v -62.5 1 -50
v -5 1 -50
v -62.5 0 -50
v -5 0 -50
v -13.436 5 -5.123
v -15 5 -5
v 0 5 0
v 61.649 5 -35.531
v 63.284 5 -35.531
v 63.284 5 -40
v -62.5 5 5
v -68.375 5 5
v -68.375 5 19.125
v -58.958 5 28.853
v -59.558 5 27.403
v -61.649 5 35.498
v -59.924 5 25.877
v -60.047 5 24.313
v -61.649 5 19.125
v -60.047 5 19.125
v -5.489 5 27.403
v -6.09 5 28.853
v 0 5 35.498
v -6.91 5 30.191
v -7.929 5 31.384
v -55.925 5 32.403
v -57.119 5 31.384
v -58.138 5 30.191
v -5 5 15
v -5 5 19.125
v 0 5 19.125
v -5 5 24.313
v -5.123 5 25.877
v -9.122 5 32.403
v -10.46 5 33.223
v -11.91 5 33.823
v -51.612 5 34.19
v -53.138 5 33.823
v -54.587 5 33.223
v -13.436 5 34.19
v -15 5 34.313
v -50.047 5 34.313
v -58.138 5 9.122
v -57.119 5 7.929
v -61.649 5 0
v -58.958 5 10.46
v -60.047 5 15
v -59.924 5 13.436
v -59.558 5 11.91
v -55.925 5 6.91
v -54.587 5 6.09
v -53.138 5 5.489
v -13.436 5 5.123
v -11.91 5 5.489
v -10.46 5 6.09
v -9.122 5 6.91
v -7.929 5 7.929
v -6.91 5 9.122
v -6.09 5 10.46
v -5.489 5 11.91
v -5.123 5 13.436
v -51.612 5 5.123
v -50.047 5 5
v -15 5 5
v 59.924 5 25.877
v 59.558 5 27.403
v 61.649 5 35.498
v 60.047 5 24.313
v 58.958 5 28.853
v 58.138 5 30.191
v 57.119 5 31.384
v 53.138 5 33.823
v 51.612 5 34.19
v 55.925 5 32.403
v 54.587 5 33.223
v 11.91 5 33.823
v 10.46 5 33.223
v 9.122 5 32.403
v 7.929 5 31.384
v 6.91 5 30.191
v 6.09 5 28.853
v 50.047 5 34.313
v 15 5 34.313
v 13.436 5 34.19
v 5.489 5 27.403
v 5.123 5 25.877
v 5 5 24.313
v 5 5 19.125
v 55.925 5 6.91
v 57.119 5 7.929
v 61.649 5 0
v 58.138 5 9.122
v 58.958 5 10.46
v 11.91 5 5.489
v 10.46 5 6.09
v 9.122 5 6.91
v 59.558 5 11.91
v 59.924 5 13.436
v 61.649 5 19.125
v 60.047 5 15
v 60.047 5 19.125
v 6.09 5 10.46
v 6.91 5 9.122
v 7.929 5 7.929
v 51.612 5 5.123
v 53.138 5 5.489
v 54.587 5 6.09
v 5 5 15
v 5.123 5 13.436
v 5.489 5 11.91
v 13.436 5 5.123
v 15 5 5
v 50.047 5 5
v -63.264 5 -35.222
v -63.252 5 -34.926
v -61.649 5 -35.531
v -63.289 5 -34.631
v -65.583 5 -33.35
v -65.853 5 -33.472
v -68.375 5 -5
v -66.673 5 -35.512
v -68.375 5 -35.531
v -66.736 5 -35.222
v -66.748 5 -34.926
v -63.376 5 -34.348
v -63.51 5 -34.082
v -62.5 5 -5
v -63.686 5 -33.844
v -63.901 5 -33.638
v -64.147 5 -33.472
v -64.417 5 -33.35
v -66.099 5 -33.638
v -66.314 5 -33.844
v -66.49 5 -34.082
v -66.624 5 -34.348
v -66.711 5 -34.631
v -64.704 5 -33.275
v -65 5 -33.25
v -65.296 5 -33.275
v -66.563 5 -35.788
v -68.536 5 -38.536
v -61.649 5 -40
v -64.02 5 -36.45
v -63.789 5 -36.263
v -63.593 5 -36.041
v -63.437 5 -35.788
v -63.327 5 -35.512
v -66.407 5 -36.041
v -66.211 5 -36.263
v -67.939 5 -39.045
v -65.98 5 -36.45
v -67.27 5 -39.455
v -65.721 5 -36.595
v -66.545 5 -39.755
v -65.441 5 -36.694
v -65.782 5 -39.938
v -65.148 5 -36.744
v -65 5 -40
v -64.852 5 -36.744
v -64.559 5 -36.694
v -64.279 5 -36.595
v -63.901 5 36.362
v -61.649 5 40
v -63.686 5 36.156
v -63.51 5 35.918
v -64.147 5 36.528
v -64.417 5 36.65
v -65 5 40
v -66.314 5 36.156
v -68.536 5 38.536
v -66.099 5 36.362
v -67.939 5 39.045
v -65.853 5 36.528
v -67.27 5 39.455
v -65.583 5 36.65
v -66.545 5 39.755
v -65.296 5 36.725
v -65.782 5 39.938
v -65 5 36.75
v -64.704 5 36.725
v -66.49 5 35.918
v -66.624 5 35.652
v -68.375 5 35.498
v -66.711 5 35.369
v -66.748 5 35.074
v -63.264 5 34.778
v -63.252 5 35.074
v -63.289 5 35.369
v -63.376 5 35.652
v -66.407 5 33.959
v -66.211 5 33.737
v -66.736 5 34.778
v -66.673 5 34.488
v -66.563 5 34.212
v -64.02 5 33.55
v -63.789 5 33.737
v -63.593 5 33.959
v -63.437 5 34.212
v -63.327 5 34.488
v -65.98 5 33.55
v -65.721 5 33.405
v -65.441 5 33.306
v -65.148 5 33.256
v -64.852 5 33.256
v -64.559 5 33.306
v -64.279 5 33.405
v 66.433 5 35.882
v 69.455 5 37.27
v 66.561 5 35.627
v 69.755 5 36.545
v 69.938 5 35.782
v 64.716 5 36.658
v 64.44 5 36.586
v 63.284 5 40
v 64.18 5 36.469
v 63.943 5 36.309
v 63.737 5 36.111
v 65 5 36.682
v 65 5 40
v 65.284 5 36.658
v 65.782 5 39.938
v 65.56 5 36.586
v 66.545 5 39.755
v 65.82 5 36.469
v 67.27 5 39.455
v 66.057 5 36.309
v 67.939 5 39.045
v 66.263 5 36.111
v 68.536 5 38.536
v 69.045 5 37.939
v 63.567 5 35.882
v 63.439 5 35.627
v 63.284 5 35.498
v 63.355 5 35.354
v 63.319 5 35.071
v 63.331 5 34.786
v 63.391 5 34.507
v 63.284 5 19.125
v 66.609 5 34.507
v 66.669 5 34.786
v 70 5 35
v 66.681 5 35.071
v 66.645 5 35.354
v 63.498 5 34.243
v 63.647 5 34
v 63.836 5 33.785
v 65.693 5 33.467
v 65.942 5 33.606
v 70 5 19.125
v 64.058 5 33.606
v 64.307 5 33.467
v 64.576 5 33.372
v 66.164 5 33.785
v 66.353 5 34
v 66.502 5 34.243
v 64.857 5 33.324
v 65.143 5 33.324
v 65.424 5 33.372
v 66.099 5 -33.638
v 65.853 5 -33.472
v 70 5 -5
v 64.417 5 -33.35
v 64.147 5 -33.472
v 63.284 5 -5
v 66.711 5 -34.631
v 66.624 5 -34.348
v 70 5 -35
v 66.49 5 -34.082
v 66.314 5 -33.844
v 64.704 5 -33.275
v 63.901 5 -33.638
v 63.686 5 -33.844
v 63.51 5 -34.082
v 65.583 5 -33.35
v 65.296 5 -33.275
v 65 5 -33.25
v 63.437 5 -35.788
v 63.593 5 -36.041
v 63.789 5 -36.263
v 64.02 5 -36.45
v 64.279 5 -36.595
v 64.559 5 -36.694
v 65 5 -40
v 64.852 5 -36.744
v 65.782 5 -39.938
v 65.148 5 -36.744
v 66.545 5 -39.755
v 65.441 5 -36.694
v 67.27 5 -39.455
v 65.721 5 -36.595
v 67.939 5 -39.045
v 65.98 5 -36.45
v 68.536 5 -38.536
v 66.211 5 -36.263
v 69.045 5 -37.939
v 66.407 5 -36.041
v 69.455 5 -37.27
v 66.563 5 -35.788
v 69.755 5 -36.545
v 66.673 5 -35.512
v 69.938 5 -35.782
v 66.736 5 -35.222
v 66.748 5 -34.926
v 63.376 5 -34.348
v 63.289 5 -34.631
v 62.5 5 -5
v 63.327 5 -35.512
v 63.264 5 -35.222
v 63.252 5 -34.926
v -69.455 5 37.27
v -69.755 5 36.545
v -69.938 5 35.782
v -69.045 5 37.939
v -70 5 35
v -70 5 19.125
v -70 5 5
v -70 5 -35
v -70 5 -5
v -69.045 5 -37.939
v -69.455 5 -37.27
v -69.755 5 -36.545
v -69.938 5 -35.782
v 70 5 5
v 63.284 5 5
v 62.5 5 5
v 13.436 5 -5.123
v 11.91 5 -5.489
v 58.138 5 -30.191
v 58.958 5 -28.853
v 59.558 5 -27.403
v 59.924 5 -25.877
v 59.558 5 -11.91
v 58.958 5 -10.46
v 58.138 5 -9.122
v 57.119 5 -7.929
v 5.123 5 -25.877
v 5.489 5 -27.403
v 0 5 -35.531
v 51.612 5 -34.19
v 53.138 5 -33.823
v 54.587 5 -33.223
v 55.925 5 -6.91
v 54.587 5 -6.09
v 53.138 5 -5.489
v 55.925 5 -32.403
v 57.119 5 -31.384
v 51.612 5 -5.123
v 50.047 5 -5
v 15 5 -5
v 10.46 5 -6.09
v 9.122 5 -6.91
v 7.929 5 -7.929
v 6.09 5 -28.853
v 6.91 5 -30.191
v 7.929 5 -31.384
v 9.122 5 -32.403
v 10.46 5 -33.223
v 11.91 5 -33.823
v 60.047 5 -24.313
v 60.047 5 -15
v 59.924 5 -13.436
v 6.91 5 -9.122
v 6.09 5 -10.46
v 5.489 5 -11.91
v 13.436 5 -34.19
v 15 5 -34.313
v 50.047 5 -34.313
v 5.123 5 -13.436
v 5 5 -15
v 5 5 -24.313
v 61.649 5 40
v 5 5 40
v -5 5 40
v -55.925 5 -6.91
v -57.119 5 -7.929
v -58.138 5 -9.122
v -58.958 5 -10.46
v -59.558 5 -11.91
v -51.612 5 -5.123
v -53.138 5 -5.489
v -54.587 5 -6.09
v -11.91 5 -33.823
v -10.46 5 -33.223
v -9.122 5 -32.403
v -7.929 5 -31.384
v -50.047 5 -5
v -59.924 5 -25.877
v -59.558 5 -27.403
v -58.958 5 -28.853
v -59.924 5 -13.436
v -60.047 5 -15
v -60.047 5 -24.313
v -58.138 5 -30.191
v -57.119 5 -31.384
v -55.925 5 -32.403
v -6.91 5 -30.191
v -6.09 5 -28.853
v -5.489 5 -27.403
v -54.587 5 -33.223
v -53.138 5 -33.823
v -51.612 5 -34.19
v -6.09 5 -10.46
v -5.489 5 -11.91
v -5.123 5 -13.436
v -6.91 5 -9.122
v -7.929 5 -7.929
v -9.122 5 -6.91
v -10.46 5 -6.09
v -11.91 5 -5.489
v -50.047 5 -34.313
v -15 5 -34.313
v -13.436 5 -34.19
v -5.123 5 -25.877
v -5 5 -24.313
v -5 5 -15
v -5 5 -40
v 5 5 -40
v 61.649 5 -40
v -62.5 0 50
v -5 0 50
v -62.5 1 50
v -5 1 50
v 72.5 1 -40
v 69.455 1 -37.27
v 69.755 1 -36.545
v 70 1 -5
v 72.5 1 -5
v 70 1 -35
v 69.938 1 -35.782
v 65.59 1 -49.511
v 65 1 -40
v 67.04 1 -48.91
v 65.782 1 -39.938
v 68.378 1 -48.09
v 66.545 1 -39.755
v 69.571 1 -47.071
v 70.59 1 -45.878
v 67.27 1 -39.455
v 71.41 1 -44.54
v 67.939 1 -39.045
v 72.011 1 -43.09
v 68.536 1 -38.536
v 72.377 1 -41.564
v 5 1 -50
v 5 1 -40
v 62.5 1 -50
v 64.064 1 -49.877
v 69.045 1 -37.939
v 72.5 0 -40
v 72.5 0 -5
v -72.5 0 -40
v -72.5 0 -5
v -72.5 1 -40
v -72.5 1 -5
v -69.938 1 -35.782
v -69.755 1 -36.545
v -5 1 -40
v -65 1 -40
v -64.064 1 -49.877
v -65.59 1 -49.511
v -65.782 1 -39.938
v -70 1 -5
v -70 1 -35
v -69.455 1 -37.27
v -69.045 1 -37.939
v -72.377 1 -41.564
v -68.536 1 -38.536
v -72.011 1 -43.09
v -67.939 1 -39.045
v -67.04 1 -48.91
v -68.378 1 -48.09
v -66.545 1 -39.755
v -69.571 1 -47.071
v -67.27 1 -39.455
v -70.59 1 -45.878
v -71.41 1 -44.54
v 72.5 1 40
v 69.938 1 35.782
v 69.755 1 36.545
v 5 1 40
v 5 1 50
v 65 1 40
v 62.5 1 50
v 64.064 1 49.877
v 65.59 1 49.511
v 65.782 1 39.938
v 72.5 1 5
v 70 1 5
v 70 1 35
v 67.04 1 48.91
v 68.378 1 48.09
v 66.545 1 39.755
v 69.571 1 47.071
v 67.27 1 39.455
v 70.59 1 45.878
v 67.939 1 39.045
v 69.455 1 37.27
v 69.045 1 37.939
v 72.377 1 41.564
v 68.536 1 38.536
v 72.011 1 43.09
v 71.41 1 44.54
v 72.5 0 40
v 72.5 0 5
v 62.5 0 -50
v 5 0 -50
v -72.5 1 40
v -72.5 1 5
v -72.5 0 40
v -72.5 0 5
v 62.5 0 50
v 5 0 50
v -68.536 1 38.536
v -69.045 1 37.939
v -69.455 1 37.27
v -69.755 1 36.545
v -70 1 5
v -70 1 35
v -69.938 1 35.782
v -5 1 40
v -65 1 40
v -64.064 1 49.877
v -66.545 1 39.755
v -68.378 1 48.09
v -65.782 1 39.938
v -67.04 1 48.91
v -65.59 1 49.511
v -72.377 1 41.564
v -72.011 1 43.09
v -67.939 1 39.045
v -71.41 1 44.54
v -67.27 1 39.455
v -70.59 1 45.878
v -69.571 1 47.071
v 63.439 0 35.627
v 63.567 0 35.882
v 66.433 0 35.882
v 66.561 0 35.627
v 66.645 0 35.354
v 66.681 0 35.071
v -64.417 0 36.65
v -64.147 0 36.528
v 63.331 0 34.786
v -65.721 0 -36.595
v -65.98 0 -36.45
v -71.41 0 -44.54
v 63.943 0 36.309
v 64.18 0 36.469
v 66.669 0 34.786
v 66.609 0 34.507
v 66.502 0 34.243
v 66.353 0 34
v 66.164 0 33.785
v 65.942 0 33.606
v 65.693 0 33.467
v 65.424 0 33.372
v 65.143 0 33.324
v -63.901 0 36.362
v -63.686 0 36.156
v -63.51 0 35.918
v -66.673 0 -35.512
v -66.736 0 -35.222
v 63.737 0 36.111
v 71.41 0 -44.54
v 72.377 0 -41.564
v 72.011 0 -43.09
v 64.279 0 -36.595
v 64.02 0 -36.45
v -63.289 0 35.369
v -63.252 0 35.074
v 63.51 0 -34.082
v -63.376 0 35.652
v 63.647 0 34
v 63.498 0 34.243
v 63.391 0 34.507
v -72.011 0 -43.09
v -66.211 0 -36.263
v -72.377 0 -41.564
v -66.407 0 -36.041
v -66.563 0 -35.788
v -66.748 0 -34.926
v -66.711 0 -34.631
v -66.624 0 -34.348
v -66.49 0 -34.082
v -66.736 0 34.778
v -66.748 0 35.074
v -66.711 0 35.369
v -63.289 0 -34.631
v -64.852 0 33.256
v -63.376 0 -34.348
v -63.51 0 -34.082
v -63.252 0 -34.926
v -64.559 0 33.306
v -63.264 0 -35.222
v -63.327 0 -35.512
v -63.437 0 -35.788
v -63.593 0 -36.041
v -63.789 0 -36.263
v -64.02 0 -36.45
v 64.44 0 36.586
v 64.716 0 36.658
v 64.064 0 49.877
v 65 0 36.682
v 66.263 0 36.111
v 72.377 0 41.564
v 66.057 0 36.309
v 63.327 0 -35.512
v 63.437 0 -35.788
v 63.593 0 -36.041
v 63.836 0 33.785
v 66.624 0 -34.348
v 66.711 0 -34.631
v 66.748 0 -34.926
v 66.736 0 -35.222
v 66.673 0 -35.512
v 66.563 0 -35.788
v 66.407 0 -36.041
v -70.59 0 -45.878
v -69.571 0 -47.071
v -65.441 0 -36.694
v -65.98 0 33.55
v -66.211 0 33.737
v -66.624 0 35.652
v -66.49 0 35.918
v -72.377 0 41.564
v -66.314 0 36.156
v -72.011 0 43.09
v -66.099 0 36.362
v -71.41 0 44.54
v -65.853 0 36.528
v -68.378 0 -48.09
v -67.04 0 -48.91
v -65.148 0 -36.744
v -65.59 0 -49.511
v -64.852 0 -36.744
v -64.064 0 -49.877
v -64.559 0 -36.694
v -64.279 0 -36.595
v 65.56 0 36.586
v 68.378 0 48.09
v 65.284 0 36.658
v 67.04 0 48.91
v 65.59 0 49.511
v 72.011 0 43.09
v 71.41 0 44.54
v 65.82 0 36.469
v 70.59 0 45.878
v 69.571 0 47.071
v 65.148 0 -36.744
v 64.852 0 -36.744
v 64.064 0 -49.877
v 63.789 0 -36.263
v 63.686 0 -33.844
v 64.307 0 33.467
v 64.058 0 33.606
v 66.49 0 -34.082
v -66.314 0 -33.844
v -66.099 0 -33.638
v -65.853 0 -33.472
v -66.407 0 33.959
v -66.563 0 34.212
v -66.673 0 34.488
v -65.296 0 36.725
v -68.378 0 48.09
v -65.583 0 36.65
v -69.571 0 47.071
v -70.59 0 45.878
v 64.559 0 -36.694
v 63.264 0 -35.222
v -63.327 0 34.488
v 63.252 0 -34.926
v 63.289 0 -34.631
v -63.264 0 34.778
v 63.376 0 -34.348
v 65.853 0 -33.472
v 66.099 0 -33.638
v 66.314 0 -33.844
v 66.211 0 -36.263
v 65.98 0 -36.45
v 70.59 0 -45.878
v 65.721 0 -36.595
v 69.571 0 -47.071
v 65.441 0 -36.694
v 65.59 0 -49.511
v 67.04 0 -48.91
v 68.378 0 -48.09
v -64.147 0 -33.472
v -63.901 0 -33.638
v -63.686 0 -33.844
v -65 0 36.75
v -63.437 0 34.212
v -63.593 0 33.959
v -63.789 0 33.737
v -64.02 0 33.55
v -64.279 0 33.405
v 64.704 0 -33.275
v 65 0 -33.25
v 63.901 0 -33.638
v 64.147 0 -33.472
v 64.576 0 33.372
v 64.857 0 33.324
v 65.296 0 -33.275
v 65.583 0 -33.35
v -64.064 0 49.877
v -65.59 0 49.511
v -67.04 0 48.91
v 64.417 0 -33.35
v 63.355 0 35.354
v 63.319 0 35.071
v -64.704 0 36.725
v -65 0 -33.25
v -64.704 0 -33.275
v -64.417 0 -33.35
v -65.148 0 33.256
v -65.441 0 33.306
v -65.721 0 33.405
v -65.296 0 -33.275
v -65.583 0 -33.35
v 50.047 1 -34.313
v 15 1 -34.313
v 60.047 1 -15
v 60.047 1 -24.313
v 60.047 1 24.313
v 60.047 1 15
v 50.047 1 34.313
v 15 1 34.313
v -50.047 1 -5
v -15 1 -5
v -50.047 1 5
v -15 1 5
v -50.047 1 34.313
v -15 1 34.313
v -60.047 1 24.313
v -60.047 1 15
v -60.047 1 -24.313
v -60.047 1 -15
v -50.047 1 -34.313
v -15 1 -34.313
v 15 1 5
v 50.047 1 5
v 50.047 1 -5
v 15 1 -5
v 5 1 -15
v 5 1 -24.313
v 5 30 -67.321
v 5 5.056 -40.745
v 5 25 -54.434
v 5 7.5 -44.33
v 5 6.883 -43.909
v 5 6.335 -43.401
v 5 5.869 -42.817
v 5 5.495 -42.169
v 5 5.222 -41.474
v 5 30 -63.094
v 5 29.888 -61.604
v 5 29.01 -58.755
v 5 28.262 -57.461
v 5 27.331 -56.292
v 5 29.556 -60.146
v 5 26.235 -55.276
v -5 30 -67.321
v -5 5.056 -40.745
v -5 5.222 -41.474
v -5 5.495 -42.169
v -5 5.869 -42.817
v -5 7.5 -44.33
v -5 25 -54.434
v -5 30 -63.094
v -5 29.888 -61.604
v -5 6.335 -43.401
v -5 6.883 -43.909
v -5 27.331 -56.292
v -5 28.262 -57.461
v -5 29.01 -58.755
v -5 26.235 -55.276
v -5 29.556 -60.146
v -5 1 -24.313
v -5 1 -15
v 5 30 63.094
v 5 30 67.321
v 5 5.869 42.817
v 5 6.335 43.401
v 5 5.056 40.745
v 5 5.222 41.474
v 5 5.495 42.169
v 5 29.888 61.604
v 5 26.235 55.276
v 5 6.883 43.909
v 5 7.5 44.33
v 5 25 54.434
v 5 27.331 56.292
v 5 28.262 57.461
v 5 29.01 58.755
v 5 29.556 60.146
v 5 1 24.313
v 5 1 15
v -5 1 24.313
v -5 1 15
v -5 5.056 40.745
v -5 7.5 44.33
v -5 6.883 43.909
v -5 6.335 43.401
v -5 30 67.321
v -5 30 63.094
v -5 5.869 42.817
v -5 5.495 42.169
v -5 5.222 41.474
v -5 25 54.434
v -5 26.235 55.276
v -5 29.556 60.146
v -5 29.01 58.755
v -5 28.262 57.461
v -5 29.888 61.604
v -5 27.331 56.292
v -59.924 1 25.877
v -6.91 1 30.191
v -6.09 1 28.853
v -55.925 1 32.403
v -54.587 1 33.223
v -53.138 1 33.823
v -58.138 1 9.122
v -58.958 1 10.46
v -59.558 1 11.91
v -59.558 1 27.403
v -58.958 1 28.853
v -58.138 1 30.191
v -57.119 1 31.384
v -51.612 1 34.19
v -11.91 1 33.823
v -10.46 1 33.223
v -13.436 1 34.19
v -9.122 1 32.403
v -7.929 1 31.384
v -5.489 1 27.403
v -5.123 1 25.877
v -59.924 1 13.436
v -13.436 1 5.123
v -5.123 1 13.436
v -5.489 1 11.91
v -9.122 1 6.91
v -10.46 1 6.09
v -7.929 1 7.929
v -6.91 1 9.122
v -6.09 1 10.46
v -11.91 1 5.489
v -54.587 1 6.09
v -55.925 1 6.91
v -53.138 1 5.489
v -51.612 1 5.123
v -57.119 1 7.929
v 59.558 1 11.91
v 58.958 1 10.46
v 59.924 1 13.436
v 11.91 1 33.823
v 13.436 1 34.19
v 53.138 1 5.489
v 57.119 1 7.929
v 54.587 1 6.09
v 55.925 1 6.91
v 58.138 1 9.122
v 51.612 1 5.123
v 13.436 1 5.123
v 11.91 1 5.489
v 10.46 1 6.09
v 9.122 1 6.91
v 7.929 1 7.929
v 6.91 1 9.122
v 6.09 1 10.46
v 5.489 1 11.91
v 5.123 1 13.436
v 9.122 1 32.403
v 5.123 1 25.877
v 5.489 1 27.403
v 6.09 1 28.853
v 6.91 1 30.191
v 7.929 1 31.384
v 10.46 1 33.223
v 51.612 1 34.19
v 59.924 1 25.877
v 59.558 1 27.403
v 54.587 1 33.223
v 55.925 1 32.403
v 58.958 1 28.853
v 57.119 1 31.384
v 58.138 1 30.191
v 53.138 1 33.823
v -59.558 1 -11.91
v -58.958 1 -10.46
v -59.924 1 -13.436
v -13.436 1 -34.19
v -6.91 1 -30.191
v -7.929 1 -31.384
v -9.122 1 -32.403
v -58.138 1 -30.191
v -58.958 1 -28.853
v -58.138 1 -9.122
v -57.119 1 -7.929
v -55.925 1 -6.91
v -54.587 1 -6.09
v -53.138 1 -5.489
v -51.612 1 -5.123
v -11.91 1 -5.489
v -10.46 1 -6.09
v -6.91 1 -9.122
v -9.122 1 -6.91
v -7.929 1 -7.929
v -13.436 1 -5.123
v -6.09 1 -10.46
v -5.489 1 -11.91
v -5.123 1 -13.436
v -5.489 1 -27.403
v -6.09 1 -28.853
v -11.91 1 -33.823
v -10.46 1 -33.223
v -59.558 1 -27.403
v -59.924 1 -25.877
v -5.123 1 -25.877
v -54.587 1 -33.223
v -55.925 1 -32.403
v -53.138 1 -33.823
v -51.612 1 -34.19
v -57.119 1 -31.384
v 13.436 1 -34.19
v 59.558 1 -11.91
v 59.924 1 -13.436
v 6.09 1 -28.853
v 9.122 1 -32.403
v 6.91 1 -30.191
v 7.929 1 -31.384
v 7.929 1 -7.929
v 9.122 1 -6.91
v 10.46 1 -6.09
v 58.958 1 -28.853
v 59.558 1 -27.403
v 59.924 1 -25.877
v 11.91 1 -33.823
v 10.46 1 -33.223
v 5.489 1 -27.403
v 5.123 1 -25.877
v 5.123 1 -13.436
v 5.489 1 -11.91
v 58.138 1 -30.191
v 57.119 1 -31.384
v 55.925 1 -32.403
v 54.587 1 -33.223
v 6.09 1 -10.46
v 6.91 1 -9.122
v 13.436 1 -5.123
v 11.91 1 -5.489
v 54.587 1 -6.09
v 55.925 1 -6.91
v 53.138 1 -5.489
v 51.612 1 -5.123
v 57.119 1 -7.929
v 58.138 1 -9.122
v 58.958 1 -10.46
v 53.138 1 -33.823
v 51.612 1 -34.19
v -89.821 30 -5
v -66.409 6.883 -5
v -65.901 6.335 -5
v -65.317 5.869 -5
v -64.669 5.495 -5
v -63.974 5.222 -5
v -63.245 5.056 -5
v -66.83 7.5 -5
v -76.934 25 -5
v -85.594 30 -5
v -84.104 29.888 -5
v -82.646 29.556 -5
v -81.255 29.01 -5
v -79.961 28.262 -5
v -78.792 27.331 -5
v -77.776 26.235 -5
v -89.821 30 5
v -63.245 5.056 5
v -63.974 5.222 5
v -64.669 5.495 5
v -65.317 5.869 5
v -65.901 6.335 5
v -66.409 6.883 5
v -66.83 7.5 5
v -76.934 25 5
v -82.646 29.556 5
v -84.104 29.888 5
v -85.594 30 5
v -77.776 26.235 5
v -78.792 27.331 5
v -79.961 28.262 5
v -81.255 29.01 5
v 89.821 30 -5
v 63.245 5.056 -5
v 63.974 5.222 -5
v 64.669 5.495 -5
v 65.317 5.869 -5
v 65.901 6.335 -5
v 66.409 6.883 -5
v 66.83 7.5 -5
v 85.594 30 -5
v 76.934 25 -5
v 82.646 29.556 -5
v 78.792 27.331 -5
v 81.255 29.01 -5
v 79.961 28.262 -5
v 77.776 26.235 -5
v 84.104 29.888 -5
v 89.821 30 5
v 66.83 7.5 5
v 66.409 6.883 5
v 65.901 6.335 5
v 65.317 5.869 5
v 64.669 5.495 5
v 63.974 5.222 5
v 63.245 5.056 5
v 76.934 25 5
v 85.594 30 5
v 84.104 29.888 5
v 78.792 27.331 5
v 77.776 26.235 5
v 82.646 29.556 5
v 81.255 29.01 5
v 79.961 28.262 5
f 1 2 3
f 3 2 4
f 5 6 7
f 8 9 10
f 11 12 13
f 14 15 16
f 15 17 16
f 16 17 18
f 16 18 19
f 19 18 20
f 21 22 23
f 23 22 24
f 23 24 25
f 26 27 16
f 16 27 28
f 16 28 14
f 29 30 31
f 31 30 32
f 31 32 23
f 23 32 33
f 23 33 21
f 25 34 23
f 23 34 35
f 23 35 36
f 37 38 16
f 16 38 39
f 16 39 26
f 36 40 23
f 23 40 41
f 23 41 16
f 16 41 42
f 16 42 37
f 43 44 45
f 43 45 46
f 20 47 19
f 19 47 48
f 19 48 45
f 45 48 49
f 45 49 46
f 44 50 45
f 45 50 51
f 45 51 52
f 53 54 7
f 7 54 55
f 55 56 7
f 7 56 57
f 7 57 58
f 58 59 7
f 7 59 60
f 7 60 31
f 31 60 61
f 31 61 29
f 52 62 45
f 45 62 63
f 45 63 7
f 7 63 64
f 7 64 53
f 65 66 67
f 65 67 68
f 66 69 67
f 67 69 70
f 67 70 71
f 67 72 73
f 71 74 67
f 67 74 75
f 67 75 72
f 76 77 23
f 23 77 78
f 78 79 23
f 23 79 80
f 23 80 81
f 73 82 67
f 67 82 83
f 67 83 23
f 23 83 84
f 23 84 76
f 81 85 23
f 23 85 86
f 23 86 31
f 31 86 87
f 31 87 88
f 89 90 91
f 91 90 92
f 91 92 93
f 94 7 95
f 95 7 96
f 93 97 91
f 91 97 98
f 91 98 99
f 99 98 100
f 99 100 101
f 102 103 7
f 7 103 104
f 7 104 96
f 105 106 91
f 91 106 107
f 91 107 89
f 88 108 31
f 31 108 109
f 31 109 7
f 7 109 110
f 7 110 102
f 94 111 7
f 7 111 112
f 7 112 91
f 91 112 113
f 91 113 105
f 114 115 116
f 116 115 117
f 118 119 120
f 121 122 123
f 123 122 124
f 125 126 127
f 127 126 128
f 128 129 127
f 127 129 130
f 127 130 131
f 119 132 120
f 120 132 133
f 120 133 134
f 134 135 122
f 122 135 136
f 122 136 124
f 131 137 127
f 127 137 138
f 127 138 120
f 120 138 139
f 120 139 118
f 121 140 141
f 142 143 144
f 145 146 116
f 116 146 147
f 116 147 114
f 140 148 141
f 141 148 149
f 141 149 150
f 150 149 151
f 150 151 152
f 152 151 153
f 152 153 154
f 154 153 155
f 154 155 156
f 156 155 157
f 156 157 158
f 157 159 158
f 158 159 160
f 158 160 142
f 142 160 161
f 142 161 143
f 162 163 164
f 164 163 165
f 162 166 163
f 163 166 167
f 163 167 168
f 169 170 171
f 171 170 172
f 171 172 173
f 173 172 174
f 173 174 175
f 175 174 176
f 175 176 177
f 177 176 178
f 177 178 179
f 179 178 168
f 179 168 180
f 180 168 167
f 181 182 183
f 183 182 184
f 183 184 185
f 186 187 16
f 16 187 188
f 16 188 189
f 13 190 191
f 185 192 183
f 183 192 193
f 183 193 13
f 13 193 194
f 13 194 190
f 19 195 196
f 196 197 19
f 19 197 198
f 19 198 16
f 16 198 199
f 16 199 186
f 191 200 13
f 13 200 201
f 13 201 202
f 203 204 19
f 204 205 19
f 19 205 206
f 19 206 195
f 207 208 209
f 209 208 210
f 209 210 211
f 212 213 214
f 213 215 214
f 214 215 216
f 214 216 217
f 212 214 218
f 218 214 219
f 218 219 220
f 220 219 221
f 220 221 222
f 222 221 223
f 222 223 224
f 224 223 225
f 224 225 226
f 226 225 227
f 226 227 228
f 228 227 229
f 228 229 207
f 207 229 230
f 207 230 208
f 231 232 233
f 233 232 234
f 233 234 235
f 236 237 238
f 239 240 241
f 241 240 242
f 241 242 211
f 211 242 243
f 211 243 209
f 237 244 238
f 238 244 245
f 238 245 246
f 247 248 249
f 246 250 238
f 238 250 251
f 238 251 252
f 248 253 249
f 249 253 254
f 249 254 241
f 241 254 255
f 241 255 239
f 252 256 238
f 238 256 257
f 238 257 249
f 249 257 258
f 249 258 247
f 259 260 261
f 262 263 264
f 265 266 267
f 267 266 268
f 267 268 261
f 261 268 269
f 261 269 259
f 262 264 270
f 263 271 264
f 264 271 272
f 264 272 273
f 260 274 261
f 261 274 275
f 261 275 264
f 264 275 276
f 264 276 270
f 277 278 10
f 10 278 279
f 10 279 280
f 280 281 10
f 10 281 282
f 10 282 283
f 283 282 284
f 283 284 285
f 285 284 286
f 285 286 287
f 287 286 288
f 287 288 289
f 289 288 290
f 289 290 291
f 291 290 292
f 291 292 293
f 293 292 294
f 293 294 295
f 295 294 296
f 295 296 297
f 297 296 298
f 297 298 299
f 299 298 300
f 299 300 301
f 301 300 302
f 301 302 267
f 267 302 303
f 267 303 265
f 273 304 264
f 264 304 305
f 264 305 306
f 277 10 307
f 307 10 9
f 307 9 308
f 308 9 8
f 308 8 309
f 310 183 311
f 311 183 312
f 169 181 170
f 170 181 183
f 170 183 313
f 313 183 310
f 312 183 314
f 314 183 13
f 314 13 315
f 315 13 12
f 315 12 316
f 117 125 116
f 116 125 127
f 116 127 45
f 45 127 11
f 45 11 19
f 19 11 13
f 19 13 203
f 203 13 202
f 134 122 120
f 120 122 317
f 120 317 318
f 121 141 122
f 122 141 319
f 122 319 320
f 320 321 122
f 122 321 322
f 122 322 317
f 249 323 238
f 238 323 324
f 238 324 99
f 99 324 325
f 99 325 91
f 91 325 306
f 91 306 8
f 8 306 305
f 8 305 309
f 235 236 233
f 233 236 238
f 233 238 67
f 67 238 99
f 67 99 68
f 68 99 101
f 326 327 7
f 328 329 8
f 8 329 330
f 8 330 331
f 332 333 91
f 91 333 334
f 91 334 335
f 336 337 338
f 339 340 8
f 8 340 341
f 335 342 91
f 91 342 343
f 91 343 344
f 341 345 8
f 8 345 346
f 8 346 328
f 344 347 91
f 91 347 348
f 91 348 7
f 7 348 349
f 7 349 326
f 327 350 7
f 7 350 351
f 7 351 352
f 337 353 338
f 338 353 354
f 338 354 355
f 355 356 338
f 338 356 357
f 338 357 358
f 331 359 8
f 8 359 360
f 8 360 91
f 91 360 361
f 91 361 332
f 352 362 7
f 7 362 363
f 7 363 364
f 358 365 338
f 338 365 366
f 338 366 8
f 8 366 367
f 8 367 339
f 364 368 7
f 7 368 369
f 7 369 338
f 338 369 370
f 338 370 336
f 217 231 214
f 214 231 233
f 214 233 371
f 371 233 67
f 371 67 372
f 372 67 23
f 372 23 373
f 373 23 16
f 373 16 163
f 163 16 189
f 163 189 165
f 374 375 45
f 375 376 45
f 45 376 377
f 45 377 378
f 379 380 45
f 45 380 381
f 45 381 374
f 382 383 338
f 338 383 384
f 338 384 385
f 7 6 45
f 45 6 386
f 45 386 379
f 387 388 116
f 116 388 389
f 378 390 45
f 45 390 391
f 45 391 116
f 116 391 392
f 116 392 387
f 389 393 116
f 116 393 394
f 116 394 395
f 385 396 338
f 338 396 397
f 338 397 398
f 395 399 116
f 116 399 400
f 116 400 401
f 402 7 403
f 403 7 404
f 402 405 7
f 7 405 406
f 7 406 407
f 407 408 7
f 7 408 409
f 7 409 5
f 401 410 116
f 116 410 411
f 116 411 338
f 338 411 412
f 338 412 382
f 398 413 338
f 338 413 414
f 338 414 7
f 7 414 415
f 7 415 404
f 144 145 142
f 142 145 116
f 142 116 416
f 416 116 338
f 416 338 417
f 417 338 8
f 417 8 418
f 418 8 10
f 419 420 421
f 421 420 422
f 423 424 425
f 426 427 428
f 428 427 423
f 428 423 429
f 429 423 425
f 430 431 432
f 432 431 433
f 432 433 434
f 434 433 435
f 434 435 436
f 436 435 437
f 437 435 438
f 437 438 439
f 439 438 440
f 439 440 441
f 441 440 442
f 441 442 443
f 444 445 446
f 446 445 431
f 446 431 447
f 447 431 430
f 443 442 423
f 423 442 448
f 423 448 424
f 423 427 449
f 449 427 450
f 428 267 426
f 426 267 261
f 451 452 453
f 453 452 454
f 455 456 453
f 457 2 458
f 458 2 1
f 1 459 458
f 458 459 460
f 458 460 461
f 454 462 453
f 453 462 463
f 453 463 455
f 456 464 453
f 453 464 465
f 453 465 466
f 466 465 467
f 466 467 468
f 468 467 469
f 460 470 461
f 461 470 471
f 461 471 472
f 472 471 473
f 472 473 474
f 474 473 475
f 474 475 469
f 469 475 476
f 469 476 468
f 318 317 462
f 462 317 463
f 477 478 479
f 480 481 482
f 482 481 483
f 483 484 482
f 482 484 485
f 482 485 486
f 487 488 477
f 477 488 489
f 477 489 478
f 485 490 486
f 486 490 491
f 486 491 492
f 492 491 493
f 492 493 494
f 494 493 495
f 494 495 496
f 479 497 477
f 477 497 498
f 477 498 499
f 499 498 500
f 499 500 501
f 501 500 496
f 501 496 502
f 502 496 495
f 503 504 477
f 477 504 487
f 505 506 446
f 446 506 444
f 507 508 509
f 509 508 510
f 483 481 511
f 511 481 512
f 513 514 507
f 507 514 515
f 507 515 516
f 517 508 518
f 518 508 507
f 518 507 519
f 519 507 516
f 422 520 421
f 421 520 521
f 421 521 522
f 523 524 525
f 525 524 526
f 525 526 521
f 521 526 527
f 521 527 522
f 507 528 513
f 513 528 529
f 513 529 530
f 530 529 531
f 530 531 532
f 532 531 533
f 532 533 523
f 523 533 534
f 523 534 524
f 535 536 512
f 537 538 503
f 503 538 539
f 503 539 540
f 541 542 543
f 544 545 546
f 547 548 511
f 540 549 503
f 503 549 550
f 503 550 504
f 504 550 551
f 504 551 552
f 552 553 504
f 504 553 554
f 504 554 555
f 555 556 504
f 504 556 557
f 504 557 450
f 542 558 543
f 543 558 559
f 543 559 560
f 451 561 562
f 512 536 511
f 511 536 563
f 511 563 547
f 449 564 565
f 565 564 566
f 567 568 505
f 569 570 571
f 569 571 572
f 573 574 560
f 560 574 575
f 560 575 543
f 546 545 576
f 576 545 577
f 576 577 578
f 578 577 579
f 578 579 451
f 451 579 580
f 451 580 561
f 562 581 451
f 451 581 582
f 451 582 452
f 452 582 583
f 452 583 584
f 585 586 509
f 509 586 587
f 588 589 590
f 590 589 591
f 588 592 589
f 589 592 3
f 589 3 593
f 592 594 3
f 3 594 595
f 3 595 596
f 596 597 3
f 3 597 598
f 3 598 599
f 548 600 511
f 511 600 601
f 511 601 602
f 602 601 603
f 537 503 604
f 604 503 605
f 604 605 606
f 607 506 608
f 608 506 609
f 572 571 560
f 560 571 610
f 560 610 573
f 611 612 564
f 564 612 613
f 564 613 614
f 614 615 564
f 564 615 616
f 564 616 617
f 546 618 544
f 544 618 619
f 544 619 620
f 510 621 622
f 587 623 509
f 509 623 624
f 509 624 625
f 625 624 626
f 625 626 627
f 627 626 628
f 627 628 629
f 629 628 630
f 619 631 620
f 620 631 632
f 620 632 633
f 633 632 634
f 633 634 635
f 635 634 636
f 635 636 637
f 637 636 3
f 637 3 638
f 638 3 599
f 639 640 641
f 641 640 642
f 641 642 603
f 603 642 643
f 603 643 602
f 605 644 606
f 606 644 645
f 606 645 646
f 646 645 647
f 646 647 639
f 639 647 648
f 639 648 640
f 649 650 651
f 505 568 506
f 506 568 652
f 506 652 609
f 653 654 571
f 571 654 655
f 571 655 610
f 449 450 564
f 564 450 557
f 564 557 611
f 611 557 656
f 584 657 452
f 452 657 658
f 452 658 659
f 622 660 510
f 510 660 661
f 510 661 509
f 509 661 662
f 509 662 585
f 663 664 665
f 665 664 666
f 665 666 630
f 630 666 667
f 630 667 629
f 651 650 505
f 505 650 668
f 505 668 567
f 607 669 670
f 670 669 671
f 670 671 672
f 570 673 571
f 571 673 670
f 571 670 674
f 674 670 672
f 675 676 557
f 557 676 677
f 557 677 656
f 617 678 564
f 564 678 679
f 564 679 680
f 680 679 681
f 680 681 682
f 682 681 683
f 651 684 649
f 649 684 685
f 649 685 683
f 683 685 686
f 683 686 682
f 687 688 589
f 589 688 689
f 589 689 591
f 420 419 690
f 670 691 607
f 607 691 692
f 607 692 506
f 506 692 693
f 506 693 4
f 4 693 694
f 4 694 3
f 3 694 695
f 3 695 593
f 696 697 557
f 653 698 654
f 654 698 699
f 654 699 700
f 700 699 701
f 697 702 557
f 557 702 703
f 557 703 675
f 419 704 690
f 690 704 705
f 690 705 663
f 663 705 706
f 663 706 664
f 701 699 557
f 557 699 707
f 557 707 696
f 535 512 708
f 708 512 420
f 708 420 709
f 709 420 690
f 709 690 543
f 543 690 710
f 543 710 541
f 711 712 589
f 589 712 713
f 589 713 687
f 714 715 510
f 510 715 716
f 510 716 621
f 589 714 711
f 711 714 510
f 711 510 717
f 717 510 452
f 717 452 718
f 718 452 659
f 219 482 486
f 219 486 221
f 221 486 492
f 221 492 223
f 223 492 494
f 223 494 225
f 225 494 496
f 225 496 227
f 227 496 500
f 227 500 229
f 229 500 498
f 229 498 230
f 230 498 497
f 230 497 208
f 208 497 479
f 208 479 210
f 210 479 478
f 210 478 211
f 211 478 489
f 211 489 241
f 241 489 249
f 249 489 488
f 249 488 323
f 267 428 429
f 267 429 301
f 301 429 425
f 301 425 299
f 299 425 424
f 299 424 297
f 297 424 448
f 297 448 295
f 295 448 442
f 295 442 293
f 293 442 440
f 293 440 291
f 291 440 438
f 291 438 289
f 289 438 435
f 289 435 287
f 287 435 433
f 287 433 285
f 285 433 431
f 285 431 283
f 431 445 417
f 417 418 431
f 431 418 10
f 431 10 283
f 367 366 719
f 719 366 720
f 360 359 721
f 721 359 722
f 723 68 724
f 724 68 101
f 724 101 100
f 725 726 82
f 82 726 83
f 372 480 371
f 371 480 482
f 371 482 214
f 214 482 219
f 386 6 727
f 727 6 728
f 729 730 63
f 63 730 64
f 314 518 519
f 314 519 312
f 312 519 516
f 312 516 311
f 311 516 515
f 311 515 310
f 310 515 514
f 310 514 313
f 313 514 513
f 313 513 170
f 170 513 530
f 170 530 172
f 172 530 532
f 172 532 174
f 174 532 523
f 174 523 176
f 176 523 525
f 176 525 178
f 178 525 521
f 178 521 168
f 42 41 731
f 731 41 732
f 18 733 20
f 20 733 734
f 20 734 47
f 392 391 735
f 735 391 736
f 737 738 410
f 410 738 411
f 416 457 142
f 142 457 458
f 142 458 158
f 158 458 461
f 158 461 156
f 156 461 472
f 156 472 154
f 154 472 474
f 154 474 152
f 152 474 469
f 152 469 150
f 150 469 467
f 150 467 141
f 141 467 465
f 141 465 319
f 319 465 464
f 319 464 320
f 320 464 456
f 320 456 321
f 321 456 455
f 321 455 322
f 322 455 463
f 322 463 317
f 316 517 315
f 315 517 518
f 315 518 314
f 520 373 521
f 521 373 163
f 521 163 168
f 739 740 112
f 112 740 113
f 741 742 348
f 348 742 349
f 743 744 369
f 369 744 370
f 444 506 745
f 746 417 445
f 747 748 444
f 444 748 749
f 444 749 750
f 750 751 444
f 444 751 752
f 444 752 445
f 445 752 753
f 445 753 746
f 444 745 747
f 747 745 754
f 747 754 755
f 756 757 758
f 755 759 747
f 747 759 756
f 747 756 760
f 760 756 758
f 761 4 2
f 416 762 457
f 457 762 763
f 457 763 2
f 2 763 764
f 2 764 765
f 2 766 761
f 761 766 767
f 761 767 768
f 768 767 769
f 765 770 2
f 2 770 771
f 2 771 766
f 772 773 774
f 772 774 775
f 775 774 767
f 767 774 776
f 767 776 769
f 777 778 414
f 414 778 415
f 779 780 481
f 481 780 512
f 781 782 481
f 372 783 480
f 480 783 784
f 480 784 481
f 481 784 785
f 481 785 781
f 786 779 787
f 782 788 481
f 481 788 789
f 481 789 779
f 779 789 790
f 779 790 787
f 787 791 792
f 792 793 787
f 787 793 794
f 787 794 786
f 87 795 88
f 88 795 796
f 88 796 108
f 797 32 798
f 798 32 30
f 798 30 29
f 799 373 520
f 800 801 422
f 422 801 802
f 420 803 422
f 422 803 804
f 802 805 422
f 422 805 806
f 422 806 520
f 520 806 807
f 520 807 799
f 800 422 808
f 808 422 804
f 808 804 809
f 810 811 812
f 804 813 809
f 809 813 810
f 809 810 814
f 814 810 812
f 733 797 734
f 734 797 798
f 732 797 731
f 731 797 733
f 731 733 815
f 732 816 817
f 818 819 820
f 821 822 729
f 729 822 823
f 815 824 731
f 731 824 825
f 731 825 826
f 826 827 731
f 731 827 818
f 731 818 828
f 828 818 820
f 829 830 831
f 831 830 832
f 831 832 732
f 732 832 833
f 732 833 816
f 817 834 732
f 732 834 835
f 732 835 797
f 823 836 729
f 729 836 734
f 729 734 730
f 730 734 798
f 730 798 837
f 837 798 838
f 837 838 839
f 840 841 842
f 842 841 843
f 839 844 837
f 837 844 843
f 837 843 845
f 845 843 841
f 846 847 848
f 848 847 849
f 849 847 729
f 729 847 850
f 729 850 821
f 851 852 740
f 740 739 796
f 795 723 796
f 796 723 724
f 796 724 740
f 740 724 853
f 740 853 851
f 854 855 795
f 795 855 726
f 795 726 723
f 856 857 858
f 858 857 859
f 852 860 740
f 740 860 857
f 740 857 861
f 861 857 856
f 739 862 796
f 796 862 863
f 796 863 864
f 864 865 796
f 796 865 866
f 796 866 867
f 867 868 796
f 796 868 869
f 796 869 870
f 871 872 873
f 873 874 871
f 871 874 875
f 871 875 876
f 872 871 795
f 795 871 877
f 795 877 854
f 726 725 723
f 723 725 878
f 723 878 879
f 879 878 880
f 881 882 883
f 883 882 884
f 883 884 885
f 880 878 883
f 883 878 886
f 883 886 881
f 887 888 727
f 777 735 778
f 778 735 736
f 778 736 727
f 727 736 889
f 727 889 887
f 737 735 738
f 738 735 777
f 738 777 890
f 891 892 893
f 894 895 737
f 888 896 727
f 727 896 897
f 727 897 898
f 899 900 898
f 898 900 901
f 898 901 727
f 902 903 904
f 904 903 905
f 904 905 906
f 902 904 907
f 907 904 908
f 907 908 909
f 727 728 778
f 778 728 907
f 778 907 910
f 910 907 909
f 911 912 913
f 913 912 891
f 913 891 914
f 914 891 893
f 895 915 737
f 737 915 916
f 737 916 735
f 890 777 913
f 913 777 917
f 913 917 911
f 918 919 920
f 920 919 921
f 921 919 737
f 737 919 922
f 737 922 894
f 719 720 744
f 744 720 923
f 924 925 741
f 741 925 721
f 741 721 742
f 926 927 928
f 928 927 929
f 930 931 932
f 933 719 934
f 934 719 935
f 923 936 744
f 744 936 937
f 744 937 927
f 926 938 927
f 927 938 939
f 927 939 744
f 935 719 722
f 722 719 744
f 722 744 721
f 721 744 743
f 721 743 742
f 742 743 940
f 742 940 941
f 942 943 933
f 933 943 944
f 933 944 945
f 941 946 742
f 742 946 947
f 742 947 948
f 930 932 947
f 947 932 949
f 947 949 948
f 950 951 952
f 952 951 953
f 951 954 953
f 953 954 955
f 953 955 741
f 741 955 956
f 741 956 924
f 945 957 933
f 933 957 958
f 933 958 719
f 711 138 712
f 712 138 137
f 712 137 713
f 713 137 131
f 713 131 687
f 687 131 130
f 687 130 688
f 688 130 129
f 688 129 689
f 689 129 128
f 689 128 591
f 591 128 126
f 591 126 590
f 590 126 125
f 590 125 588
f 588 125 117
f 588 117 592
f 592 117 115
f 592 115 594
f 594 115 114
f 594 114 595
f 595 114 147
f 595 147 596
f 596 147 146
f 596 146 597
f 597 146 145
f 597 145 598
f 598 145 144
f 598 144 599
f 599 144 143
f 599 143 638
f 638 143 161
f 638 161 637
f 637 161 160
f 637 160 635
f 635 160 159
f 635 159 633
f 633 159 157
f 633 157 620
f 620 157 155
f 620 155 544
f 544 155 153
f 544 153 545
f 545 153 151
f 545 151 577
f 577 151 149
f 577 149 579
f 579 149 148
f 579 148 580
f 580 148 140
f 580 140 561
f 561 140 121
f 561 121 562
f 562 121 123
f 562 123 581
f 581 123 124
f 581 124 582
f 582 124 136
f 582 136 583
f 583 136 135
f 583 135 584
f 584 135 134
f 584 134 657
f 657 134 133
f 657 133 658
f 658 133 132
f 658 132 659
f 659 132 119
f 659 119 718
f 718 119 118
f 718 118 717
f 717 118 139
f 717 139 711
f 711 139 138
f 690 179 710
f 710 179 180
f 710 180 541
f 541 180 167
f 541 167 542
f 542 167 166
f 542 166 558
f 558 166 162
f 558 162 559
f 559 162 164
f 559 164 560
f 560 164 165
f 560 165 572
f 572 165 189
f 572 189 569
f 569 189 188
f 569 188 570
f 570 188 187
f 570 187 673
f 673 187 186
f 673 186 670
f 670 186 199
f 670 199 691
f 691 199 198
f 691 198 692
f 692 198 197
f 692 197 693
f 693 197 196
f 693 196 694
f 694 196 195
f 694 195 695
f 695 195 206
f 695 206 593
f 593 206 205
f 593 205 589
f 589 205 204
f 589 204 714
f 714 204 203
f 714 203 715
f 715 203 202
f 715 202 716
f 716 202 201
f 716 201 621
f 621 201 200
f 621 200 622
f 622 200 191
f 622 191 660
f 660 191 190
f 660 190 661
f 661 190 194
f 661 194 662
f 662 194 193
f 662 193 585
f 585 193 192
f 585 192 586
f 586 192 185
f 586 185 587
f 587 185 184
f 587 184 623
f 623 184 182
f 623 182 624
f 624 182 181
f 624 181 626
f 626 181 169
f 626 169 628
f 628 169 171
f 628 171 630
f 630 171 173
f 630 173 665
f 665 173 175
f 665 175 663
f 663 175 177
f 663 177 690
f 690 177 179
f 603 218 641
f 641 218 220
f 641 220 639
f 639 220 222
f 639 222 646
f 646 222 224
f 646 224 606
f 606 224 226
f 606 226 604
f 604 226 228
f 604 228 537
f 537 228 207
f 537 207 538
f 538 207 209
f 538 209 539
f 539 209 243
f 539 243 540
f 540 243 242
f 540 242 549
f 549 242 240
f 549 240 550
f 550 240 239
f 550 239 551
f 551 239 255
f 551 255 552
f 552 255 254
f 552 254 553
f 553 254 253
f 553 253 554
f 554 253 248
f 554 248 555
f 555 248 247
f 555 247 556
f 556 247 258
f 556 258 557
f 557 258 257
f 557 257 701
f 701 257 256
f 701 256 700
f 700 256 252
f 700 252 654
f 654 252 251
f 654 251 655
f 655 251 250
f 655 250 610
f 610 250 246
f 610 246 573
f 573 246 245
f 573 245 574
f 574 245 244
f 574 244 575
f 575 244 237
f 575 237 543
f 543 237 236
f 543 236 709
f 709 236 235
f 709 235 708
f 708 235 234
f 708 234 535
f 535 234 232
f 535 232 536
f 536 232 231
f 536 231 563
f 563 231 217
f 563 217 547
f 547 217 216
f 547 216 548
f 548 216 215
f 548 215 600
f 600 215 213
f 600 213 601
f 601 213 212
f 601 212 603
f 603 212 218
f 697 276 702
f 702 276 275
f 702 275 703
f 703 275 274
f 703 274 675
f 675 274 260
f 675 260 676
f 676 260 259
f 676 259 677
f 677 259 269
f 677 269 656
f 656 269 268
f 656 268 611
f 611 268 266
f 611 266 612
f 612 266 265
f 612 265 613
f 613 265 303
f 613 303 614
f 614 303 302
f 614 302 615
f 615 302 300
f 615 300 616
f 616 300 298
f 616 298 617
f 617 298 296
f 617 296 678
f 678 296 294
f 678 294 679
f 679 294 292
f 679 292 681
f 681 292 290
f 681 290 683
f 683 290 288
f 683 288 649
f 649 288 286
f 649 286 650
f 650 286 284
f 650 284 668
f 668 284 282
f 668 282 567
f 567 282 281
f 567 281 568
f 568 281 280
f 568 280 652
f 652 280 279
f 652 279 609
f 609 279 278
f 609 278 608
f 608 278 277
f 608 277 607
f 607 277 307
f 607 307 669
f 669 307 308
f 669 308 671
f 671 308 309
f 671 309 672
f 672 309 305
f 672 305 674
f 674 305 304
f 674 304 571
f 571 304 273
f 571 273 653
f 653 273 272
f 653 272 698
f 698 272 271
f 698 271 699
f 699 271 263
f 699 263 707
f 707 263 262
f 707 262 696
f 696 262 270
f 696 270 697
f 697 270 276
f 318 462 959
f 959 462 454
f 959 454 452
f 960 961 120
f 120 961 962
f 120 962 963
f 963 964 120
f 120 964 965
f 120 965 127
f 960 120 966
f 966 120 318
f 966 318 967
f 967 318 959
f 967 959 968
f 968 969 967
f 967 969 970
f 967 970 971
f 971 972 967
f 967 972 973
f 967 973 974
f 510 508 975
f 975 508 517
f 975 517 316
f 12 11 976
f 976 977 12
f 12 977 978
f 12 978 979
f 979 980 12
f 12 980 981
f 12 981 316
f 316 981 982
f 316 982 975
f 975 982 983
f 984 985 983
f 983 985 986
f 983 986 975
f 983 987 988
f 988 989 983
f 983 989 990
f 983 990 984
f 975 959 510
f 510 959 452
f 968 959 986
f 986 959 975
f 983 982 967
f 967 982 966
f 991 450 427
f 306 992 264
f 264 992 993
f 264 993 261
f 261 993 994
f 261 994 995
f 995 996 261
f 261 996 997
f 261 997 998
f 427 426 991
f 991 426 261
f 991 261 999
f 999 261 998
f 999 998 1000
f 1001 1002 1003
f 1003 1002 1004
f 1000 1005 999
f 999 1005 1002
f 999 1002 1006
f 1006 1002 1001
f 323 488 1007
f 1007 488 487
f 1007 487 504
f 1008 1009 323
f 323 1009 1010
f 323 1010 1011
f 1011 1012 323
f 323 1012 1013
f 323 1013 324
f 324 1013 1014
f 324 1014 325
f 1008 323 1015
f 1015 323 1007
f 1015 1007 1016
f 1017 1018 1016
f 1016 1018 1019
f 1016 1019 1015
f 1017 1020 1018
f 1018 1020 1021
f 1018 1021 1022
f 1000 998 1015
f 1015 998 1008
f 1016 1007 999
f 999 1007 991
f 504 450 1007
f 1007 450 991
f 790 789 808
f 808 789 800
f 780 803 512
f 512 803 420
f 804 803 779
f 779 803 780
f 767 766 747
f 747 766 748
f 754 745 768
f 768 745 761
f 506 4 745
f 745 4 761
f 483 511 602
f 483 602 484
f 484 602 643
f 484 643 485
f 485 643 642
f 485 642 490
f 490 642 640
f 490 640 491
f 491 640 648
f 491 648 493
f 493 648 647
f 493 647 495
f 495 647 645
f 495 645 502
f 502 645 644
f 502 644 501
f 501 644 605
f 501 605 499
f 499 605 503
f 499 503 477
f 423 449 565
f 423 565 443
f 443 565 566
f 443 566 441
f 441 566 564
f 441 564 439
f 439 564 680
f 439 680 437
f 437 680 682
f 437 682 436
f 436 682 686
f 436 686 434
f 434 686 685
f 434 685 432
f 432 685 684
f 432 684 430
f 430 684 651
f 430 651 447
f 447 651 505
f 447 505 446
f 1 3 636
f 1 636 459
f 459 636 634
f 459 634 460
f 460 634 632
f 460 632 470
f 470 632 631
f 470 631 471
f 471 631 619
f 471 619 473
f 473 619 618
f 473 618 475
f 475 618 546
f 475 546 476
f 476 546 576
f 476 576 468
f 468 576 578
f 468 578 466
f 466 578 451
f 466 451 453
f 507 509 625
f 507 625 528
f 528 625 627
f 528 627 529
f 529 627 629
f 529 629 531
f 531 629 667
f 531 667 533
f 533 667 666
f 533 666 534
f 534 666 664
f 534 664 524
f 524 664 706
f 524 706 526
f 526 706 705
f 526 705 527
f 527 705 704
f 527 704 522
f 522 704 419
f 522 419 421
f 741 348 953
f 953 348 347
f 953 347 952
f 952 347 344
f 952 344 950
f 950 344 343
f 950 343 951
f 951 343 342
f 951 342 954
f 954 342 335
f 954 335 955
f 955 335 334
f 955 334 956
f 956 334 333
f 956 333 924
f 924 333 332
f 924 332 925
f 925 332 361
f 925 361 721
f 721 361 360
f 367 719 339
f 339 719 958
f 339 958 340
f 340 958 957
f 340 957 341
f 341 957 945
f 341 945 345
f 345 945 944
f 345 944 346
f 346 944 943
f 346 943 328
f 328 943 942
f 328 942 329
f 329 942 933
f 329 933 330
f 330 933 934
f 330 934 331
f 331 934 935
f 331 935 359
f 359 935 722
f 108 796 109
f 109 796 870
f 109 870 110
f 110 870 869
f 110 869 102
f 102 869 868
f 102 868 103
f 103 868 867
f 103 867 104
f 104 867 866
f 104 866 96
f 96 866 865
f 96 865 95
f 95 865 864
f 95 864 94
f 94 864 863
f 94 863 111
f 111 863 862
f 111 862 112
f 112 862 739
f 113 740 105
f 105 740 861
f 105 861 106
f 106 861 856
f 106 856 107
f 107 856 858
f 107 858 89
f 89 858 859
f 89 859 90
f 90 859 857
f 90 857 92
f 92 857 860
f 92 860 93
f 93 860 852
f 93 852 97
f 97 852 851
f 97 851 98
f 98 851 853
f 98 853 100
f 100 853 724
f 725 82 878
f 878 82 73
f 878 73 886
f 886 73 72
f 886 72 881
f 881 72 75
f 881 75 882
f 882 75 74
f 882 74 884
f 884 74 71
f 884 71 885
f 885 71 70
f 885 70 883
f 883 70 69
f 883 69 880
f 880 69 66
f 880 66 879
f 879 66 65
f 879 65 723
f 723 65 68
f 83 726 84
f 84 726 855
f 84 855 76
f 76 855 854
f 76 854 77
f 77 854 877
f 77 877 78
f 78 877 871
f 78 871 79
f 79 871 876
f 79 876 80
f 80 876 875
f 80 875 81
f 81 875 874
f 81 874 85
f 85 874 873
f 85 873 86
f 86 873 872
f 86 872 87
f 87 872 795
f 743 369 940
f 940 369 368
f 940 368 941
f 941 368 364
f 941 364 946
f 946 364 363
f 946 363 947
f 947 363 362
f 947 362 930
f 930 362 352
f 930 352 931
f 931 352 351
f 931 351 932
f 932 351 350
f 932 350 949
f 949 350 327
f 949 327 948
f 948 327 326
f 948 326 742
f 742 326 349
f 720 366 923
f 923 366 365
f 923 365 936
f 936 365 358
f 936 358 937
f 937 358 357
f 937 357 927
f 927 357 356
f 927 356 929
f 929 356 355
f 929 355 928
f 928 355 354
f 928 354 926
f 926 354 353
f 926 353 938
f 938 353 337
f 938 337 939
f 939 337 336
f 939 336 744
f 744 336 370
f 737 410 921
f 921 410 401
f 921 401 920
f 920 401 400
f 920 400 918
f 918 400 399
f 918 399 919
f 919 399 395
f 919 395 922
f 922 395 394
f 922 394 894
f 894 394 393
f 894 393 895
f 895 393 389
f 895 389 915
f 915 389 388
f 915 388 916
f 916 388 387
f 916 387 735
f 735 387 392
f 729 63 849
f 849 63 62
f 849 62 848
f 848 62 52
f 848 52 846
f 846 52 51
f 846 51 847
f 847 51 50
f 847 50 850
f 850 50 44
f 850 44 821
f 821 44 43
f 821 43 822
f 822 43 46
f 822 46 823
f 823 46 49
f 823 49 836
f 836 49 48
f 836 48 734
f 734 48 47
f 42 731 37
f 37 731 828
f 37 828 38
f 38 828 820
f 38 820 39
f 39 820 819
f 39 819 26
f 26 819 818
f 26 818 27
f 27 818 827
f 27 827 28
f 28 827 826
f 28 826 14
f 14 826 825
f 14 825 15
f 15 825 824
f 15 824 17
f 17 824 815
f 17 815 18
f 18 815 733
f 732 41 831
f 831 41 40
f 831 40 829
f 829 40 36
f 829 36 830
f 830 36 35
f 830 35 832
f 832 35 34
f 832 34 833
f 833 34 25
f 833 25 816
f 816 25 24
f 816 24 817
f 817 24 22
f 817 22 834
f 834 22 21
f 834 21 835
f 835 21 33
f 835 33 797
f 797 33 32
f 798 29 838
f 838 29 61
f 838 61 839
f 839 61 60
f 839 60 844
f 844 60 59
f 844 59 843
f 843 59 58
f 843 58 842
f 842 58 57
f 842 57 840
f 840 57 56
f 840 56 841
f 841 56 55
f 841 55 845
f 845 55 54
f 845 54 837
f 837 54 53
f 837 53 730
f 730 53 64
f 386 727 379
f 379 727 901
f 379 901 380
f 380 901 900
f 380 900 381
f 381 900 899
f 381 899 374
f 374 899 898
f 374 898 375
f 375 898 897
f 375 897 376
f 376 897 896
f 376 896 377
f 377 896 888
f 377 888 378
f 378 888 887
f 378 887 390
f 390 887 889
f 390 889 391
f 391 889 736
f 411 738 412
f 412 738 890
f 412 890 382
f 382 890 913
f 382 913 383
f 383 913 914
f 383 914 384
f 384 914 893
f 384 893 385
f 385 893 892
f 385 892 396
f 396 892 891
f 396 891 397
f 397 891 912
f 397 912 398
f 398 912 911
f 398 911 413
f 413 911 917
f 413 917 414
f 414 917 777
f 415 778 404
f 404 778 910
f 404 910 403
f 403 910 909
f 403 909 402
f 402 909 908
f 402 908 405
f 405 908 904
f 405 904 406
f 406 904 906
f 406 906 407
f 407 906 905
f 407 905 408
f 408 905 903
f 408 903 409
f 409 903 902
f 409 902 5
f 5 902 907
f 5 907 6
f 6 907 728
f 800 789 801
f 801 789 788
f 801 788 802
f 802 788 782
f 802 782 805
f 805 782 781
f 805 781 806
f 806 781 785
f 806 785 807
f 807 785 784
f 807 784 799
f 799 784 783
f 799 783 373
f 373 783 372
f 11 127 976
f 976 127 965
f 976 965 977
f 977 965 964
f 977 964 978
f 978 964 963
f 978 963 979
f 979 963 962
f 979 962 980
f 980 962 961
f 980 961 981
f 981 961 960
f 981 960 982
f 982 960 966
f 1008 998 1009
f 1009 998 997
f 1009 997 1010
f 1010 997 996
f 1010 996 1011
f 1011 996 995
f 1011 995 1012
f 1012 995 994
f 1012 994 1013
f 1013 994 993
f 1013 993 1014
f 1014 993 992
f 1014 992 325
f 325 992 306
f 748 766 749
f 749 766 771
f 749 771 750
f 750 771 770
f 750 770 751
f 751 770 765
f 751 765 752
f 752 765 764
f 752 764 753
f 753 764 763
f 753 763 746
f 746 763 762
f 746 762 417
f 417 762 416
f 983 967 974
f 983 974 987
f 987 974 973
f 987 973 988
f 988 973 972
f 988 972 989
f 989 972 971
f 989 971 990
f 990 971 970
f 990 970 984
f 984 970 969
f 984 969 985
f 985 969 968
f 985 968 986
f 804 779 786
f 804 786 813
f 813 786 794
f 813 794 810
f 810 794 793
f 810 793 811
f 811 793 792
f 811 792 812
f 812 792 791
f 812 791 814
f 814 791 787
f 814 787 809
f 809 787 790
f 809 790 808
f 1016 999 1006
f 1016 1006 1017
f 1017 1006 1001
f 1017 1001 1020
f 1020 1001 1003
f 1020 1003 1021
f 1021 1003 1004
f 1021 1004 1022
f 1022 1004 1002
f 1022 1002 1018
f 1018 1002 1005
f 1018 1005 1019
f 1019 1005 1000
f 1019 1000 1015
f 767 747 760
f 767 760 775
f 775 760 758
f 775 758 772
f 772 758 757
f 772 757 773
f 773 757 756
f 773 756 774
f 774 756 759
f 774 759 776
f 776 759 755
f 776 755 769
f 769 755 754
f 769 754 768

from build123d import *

# Parameters (mm, degrees)
SKETCH_1_W           = 145
SKETCH_1_H           = 100
EXTRUDE_1_DEPTH      = 1
SKETCH_2_W           = 55.047445891
SKETCH_2_H           = 29.312826224
EXTRUDE_2_DEPTH      = 4
SKETCH_3_R           = 1.75
SKETCH_3_R_2         = 1.682307007
CUT_EXTRUDE_1_DEPTH  = 89.211393822
EXTRUDE_3_DEPTH      = 5
EXTRUDE_3_DEPTH_BACK = 5
EXTRUDE_4_DEPTH      = 5
EXTRUDE_4_DEPTH_BACK = 5
FILLET_1_R           = 10
FILLET_3_R           = 10
FILLET_4_R           = 5
FILLET_5_R           = 10


with BuildPart() as part:
    # Эскиз1 → Бобышка-Вытянуть1 (new body)
    with BuildSketch(Plane(origin=(0, 0, 0), x_dir=(1, 0, 0), z_dir=(0, 1, 0))):
        Rectangle(SKETCH_1_W, SKETCH_1_H)
    extrude(amount=EXTRUDE_1_DEPTH)

    # Эскиз2 → Бобышка-Вытянуть2 (add)
    with BuildSketch(Plane(origin=(0, 1, 0), x_dir=(1, 0, 0), z_dir=(0, 1, 0))):
        with BuildLine():
            Line((70, -35), (70, 35))
            ThreePointArc((70, 35), (68.535533919, 38.535533893), (65.000000038, 40))
            Line((65.000000038, 40), (5, 40))
            Line((5, 40), (5, 50))
            Line((5, 50), (-5, 50))
            Line((-5, 50), (-5, 40))
            Line((-5, 40), (-65, 40))
            ThreePointArc((-65, 40), (-68.535533906, 38.535533906), (-70, 35))
            Line((-70, 35), (-70, -35))
            ThreePointArc((-70, -35), (-68.535533906, -38.535533906), (-65, -40))
            Line((-65, -40), (-5, -40))
            Line((-5, -40), (-5, -50))
            Line((-5, -50), (5, -50))
            Line((5, -50), (5, -40))
            Line((5, -40), (64.999999981, -40))
            ThreePointArc((64.999999981, -40), (68.535533899, -38.535533913), (70, -35))
        make_face()
        with Locations((-32.523722945, -19.656413112)):
            Rectangle(SKETCH_2_W, SKETCH_2_H, mode=Mode.SUBTRACT)
        with Locations((32.523722945, -19.656413112)):
            Rectangle(SKETCH_2_W, SKETCH_2_H, mode=Mode.SUBTRACT)
        with Locations((-32.523722945, 19.656413112)):
            Rectangle(SKETCH_2_W, SKETCH_2_H, mode=Mode.SUBTRACT)
        with Locations((32.523722945, 19.656413112)):
            Rectangle(SKETCH_2_W, SKETCH_2_H, mode=Mode.SUBTRACT)
    extrude(amount=EXTRUDE_2_DEPTH)

    # Эскиз3 → Вырез-Вытянуть1 (cut, through all)
    with BuildSketch(Plane(origin=(0, 5, 0), x_dir=(1, 0, 0), z_dir=(0, 1, 0))):
        with Locations(Location((-65, 35, 0), (0, 0, 270))):
            Circle(SKETCH_3_R)
        with Locations(Location((-65, -35, 0), (0, 0, 270))):
            Circle(SKETCH_3_R)
        with Locations(Location((65, -35, 0), (0, 0, 270))):
            Circle(SKETCH_3_R_2)
        with Locations(Location((65, 35, 0), (0, 0, 270))):
            Circle(SKETCH_3_R)
    extrude(amount=-CUT_EXTRUDE_1_DEPTH, mode=Mode.SUBTRACT)

    # Эскиз4 → Бобышка-Вытянуть3 (add, two sides: drawn at the far end of the back side and taken through both)
    with BuildSketch(Plane.XY.offset(-EXTRUDE_3_DEPTH_BACK)):
        Polygon((-72.5, 0), (-62.5, 0), (-63.077350269, 1), (-70, 1), (-70, 5), (-65.386751346, 5), (-79.820508076, 30), (-89.820508076, 30), align=None)
        Polygon((79.820508076, 30), (62.5, 0), (72.5, 0), (89.820508076, 30), align=None)
    extrude(amount=EXTRUDE_3_DEPTH + EXTRUDE_3_DEPTH_BACK)

    # Эскиз5 → Бобышка-Вытянуть4 (add, two sides: drawn at the far end of the back side and taken through both)
    with BuildSketch(Plane(origin=(0, 0, 0), x_dir=(0, 0, -1), z_dir=(1, 0, 0)).offset(-EXTRUDE_4_DEPTH_BACK)):
        Polygon((-50, 1), (-40.577350269, 1), (-57.320508076, 30), (-67.320508076, 30), (-50, 0), align=None)
        Polygon((50, 0), (40, 0), (57.320508076, 30), (67.320508076, 30), align=None)
    extrude(amount=EXTRUDE_4_DEPTH + EXTRUDE_4_DEPTH_BACK)

    # Скругление1
    fillet_1_edges = [part.edges().sort_by_distance(p)[0] for p in [
        (72.5, 0.5, 50),
        (-72.5, 0.5, 50),
        (-72.5, 0.5, -50),
        (72.5, 0.5, -50),
    ]]
    fillet(fillet_1_edges, radius=FILLET_1_R)

    # Скругление3
    fillet_3_edges = [part.edges().sort_by_distance(p)[0] for p in [
        (5, 3, -34.312826224),
        (60.047445891, 3, -34.312826224),
        (60.047445891, 3, 5),
        (60.047445891, 3, 34.312826224),
        (-5, 3, 5),
        (-60.047445891, 3, 5),
        (-5, 3, 34.312826224),
        (-60.047445891, 3, 34.312826224),
        (-60.047445891, 3, -5),
        (-60.047445891, 3, -34.312826224),
        (5, 3, -5),
        (60.047445891, 3, -5),
        (-5, 3, -34.312826224),
        (-5, 3, -5),
        (5, 3, 34.312826224),
        (5, 3, 5),
    ]]
    fillet(fillet_3_edges, radius=FILLET_3_R)

    # Скругление4
    fillet_4_edges = [part.edges().sort_by_distance(p)[0] for p in [
        (0, 5, 42.886751346),
        (-65.386751346, 5, 0),
        (65.386751346, 5, 0),
        (0, 5, -42.886751346),
    ]]
    fillet(fillet_4_edges, radius=FILLET_4_R)

    # Скругление5
    fillet_5_edges = [part.edges().sort_by_distance(p)[0] for p in [
        (-79.820508076, 30, 0),
        (79.820508076, 30, 0),
        (0, 30, 57.320508076),
        (0, 30, -57.320508076),
    ]]
    fillet(fillet_5_edges, radius=FILLET_5_R)


solid = part.part
